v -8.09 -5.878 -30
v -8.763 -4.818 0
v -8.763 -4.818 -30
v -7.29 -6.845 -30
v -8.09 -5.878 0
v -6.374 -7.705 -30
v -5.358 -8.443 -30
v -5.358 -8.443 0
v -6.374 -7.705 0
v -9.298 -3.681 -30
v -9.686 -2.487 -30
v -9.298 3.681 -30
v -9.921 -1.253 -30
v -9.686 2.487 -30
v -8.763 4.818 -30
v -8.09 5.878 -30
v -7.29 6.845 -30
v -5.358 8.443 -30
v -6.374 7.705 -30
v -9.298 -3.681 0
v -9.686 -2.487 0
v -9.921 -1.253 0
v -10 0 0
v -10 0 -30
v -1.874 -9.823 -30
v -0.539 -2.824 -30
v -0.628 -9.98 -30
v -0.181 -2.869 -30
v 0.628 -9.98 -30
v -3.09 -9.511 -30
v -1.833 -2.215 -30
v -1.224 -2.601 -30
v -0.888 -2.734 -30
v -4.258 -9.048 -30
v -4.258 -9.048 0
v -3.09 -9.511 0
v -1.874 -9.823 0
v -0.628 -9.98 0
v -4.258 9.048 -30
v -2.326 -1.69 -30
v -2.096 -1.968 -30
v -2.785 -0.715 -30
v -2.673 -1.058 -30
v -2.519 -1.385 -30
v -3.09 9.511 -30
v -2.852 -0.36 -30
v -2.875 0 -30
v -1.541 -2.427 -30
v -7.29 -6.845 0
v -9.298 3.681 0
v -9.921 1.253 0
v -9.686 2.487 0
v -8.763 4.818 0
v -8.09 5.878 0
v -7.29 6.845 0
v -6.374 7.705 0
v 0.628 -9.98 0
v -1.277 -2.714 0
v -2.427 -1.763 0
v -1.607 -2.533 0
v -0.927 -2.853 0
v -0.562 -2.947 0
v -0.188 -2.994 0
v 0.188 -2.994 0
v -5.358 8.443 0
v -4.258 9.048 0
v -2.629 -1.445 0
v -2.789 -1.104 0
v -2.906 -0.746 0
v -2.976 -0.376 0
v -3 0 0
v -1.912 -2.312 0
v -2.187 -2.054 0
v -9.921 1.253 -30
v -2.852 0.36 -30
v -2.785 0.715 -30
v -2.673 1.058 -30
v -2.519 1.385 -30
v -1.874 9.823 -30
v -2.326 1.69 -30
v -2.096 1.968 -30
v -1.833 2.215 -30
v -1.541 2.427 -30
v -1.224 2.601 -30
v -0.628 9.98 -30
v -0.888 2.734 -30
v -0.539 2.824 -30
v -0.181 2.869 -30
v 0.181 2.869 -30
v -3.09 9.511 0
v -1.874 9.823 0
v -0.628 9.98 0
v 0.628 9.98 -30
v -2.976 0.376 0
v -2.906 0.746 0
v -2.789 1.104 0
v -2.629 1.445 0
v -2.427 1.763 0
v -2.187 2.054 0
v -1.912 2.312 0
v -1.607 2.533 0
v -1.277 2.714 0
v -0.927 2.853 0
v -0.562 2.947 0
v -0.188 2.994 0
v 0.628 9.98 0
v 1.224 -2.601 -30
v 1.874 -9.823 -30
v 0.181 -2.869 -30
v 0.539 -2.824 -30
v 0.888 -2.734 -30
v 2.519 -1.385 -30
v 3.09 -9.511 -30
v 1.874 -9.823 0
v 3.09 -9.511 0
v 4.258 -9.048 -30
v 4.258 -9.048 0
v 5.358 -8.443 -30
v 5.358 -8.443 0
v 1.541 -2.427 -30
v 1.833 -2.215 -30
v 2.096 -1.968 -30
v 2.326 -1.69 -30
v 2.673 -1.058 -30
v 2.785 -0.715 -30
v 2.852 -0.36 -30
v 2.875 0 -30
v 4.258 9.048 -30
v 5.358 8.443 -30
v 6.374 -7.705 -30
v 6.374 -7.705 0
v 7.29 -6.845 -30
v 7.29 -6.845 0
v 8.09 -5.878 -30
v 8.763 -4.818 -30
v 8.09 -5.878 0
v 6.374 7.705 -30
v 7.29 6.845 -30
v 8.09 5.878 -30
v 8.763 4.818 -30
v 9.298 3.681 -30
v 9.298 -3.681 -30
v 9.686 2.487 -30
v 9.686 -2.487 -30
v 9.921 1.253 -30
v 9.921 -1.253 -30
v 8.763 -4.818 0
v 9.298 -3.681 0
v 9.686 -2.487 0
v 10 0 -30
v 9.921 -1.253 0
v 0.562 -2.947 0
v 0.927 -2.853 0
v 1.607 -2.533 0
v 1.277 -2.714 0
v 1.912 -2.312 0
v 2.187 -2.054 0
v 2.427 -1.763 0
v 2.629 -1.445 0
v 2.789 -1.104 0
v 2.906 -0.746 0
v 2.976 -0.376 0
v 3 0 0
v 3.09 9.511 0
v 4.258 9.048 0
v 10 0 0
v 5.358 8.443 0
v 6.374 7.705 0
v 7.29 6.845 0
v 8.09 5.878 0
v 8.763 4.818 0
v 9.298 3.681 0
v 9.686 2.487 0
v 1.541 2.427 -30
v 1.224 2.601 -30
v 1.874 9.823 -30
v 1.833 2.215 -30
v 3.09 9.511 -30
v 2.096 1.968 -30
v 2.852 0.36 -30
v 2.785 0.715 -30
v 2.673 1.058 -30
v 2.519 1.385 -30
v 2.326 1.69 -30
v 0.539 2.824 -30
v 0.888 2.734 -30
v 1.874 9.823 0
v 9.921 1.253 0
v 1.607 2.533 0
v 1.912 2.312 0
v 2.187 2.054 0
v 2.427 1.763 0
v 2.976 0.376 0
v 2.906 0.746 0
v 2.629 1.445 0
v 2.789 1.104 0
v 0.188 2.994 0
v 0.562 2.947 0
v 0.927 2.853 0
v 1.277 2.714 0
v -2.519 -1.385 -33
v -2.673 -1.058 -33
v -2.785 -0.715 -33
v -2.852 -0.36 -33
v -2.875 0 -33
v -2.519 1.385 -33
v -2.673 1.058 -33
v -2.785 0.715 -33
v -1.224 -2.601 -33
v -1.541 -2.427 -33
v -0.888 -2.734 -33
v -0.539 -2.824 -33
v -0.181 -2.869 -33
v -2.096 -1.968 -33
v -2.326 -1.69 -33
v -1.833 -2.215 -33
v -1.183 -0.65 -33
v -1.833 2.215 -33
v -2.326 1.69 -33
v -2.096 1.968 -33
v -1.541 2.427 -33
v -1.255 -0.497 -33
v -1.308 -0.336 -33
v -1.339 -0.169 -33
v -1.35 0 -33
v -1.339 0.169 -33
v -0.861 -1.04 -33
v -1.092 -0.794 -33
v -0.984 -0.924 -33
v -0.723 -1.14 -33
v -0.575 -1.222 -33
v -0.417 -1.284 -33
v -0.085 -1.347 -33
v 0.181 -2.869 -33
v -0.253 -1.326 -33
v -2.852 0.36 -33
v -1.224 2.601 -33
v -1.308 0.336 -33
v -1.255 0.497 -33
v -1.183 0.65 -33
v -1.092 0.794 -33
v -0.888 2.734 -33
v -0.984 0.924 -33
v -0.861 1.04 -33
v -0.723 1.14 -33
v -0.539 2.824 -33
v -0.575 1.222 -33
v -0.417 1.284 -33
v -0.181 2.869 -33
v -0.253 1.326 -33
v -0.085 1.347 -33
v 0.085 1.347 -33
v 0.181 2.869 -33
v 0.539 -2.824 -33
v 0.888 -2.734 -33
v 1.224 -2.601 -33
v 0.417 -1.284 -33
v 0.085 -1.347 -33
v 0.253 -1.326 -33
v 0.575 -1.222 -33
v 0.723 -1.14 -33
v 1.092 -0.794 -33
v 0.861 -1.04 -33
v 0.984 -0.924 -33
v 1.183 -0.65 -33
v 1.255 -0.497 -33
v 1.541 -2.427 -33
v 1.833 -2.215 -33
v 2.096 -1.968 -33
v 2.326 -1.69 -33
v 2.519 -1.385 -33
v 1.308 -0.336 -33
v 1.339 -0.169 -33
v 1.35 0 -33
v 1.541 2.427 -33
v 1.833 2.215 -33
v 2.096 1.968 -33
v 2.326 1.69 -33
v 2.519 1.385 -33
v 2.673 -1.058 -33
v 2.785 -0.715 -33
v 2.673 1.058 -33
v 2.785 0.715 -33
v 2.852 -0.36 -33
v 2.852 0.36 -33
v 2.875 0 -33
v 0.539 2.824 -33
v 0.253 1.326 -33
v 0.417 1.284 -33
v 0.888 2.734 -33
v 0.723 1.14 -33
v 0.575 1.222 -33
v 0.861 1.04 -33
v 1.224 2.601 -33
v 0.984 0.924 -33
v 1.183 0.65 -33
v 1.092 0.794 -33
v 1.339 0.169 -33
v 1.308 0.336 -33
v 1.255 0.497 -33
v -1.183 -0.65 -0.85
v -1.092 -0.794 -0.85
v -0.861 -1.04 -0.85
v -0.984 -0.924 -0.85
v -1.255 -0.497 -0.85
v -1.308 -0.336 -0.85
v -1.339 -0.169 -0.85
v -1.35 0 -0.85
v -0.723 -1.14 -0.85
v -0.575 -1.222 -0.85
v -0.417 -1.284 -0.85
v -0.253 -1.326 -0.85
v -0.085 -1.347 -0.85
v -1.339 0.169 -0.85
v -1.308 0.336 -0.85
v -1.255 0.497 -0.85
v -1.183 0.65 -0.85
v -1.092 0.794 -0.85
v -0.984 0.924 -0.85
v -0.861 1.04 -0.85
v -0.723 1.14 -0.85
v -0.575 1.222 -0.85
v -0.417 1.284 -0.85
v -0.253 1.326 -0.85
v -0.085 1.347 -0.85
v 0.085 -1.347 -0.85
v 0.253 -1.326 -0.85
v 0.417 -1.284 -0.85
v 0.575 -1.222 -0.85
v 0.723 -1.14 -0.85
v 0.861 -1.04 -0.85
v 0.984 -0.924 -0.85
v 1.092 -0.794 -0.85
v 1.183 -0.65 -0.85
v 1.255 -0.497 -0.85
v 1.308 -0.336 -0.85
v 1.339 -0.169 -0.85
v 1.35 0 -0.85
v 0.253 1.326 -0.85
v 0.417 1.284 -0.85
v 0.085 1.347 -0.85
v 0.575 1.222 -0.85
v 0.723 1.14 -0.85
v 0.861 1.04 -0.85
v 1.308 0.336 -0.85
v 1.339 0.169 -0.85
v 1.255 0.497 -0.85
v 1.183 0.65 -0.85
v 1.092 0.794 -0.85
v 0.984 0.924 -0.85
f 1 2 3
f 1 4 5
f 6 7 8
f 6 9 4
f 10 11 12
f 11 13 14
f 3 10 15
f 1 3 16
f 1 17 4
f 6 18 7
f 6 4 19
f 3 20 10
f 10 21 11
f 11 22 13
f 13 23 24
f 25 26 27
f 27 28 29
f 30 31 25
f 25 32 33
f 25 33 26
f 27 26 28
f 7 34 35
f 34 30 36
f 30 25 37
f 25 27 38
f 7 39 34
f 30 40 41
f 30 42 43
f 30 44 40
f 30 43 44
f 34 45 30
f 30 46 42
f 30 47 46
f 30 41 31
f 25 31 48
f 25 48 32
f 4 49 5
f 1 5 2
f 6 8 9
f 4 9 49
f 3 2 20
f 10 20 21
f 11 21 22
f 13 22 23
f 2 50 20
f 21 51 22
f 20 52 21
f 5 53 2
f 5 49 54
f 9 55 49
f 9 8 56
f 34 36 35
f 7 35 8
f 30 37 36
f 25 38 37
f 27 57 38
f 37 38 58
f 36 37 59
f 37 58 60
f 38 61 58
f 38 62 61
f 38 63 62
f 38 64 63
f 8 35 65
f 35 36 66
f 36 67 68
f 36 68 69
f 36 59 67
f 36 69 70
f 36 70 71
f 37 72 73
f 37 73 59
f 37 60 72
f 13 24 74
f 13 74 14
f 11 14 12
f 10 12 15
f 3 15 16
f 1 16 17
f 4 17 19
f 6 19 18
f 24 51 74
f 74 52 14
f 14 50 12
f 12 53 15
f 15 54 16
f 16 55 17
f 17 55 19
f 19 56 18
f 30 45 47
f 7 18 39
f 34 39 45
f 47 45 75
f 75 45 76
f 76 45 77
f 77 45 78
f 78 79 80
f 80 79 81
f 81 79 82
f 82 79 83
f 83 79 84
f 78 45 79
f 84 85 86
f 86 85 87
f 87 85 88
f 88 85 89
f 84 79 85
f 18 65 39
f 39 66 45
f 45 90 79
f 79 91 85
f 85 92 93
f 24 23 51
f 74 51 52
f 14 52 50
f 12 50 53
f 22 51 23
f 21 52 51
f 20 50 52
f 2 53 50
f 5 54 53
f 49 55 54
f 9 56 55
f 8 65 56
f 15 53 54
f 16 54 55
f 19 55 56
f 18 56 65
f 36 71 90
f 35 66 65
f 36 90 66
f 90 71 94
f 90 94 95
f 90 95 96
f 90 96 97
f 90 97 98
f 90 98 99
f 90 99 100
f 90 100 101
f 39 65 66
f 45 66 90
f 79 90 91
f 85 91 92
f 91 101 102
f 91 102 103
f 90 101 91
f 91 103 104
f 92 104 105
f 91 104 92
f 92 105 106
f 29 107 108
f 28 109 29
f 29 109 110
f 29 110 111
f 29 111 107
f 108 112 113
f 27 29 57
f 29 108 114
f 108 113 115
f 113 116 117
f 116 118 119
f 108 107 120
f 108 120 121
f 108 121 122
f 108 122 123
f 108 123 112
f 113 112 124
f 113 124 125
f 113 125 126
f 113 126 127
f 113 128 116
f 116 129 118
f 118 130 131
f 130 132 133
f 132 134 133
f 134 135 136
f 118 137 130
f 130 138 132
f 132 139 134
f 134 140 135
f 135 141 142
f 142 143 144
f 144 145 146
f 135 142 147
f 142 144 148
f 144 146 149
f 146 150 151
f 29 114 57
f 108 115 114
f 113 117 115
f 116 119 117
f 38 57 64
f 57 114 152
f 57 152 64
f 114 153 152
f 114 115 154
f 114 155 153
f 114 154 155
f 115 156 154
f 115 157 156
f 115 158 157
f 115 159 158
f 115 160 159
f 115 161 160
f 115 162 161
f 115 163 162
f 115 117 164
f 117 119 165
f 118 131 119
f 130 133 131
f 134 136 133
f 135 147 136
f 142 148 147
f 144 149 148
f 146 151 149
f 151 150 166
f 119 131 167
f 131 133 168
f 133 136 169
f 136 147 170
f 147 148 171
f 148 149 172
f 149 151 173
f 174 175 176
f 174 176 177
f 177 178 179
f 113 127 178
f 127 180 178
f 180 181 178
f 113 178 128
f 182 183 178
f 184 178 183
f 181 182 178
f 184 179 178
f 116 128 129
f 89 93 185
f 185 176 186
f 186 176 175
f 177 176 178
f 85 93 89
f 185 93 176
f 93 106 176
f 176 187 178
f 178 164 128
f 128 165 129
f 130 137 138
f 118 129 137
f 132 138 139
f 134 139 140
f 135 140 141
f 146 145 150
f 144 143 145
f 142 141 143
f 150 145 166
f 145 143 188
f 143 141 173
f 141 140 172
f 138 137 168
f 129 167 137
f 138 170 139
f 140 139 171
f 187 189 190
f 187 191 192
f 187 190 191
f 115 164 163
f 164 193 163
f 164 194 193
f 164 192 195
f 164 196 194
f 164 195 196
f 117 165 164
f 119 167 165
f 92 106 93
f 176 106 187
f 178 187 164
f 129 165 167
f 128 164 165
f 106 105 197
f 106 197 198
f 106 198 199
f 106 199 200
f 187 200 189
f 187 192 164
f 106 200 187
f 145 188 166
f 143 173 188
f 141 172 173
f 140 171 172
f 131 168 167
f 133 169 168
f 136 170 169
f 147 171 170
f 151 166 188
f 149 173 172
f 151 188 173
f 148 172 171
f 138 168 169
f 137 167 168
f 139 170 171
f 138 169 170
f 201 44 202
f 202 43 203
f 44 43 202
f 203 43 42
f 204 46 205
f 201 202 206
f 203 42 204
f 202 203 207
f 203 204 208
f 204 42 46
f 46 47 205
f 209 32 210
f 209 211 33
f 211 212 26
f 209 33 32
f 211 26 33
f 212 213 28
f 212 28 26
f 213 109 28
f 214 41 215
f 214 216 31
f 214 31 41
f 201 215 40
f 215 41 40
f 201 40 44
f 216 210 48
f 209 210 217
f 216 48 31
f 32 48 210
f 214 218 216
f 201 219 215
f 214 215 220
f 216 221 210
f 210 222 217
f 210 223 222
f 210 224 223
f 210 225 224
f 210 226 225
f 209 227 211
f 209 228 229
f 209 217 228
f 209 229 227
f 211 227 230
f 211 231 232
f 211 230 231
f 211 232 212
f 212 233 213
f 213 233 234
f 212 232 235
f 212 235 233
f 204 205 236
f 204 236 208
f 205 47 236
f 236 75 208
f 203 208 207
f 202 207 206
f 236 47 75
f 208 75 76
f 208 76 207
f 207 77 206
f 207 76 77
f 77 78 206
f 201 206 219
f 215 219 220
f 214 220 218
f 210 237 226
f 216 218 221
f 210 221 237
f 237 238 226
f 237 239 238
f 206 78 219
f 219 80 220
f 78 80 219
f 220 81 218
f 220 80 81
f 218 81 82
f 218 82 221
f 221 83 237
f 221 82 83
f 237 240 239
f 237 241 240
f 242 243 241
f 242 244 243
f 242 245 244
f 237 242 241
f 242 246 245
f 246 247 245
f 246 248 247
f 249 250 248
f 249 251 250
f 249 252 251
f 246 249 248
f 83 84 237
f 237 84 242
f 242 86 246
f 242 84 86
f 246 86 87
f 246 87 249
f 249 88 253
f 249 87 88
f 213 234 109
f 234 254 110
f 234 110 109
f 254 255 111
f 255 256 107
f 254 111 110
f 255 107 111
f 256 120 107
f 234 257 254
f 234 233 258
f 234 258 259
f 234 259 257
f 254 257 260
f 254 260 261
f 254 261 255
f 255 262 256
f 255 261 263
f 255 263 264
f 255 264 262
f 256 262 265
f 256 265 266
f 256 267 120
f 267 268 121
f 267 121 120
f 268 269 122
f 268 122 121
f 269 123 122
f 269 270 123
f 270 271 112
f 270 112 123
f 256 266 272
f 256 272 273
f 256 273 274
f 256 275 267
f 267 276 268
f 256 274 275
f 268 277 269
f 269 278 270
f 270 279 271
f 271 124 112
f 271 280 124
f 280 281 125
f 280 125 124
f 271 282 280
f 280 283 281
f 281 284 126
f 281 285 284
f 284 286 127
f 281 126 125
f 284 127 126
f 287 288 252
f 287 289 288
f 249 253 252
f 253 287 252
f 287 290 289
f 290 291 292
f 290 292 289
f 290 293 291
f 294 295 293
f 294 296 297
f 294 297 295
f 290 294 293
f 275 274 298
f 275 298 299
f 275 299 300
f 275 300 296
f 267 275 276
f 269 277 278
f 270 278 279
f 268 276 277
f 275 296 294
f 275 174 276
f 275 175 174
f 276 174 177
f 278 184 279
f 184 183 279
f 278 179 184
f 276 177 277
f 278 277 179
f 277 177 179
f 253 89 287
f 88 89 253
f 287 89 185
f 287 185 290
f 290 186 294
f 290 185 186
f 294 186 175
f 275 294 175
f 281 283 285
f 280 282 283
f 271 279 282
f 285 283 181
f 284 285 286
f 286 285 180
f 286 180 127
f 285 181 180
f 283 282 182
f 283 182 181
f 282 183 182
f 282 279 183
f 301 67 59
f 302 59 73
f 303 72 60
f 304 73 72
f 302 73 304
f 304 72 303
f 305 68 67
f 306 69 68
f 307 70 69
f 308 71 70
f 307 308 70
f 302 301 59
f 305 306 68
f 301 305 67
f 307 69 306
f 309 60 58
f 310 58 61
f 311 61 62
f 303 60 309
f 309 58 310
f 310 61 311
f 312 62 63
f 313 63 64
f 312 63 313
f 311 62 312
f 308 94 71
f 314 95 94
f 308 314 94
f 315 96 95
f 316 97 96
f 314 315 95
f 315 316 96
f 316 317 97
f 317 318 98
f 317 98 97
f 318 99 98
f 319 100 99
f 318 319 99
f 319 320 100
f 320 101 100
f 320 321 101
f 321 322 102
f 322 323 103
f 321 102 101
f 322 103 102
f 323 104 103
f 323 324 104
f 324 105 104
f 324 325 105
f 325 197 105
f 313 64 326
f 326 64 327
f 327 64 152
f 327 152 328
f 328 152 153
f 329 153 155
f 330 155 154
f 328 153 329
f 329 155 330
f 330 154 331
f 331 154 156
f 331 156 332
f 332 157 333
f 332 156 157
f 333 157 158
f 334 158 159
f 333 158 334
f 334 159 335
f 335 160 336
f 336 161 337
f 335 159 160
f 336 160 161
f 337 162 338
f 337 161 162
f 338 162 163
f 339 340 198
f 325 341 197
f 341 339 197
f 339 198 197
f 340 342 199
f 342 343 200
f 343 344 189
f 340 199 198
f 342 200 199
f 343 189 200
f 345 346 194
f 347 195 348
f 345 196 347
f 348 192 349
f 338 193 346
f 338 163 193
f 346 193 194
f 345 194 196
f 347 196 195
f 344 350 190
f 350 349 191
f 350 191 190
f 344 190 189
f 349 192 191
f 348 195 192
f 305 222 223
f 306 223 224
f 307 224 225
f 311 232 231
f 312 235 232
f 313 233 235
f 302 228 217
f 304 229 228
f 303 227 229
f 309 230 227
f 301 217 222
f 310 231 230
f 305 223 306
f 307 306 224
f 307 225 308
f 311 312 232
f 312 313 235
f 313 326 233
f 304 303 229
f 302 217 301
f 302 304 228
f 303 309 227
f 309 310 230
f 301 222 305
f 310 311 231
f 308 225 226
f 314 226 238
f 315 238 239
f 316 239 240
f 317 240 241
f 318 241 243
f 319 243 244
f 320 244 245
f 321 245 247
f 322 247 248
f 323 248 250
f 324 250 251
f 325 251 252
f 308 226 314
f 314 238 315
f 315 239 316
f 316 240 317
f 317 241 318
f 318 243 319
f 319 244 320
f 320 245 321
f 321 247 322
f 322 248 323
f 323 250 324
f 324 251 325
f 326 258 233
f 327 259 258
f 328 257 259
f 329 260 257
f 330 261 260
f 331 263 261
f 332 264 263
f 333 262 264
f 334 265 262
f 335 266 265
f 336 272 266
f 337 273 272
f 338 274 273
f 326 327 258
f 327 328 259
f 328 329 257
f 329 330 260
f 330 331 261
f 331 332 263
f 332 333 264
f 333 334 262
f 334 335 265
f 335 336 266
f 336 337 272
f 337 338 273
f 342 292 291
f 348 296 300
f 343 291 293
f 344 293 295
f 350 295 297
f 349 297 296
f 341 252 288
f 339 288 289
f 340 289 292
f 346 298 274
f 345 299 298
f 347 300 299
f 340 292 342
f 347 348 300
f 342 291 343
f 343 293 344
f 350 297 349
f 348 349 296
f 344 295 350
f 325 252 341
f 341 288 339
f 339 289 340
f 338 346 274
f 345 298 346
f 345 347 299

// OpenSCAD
$fn = 50;

difference() {
	union() {
		translate(v = [0, 0, -30.0]) {
			cylinder(h = 30, r = 10.0);
		}
		#translate(v = [0, 0, -33.0]) {
			cylinder(h = 33, r = 2.875);
		}
	}
	union() {
		translate(v = [0, 0, 0]) {
			rotate(a = [0, 0, 0]) {
				difference() {
					union() {
						translate(v = [0, 0, -33.0]) {
							cylinder(h = 33, r = 1.0);
						}
						translate(v = [0, 0, -0.85]) {
							cylinder(h = 0.85, r1 = 1.35, r2 = 3.0);
						}
						translate(v = [0, 0, -33.0]) {
							cylinder(h = 33, r = 1.35);
						}
						translate(v = [0, 0, -33.0]) {
							cylinder(h = 33, r = 1.0);
						}
					}
					union();
				}
			}
		}
	}
}
